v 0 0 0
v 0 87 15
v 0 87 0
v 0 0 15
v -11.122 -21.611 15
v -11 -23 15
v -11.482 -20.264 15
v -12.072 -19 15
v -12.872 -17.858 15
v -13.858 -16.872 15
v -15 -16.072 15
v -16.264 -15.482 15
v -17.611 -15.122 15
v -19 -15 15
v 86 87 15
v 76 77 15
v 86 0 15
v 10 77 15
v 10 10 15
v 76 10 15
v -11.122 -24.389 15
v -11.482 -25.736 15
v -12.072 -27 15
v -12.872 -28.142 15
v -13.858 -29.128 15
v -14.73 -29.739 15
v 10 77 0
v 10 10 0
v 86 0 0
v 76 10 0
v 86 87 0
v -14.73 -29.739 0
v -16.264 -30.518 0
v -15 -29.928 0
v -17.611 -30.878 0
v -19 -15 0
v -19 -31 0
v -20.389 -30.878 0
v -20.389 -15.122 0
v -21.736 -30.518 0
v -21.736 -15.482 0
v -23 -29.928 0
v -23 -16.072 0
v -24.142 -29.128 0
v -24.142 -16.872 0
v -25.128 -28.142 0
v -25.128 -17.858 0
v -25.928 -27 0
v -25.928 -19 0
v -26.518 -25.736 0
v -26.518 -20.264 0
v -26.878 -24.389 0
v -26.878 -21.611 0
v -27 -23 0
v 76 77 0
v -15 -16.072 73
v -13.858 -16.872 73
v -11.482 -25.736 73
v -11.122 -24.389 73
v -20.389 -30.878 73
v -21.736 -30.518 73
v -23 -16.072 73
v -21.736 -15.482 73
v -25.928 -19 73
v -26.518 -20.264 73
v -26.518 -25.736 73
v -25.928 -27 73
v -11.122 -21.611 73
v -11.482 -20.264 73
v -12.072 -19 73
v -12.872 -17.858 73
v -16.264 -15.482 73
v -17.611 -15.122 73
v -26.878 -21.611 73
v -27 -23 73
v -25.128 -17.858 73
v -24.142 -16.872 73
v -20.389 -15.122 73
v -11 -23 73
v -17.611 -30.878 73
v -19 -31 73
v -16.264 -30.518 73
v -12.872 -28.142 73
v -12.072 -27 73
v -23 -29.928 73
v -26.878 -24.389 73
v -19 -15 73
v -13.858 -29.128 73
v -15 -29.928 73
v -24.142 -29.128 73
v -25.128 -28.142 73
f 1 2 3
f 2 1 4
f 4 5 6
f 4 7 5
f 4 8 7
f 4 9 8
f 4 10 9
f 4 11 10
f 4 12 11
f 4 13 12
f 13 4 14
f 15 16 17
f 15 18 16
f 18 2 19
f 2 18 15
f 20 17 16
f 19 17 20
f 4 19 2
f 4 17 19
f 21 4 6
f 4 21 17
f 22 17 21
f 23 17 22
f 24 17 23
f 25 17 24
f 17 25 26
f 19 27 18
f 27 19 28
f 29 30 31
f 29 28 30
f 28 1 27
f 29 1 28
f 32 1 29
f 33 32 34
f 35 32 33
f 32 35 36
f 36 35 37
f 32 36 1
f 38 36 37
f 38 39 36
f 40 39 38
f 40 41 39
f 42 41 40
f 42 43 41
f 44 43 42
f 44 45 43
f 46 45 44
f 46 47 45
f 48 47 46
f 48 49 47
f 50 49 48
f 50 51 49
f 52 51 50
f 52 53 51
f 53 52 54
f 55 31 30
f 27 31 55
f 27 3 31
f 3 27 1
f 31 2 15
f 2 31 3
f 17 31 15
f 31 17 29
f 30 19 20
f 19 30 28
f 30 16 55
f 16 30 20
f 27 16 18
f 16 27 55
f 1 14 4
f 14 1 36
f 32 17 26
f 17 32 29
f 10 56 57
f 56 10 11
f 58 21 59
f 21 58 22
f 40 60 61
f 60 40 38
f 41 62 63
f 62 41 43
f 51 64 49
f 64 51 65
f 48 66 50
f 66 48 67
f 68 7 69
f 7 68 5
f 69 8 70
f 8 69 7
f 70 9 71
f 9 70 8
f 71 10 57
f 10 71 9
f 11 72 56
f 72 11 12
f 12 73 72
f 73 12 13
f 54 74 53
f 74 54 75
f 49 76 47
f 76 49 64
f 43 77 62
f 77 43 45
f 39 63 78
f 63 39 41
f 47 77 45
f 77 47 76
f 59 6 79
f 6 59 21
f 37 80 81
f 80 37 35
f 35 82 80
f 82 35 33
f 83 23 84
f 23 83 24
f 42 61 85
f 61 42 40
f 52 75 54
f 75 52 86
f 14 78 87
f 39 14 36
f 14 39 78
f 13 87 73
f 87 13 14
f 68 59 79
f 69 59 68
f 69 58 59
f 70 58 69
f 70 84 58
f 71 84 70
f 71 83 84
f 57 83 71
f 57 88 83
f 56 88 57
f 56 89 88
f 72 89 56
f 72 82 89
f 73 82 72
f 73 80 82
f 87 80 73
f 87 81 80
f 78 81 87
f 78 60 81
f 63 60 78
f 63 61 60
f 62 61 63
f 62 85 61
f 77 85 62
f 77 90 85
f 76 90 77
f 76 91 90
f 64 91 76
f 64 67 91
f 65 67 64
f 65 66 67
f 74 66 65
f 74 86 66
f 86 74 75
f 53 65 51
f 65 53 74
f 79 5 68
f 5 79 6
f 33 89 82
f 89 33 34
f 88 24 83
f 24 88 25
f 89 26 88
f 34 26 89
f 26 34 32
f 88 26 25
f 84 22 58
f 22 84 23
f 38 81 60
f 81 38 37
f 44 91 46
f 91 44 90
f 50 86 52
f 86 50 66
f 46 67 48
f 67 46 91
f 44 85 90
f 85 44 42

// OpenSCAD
t1 = 10;
t2 = 10;
t3 = 10;
t4 = 15;
t5 = 10;

h = 66 + t1 + t2;
l1 = 67 + t5 + t3;
l2 = l1;

r = 8;
x = 23;
y = 19;
z = 73;
cylinder_res = 36;

// Bracket around square mount
cube([t2, l2, t4]);
cube([h, t3, t4]);
translate([h-t1, 0, 0])
    cube([t1, l1, t4]);
translate([0, l2 - t5, 0])
    cube([h, t5, t4]);

// extrusion to cylinder
linear_extrude(height = t4)
    polygon(points=[[0,0], [-y, -(x-r)], [-y, -(x+r)], [h,0]]);

// cylilnder
translate([-y, -x, 0])
    cylinder(z, r, r, $fn=cylinder_res);
